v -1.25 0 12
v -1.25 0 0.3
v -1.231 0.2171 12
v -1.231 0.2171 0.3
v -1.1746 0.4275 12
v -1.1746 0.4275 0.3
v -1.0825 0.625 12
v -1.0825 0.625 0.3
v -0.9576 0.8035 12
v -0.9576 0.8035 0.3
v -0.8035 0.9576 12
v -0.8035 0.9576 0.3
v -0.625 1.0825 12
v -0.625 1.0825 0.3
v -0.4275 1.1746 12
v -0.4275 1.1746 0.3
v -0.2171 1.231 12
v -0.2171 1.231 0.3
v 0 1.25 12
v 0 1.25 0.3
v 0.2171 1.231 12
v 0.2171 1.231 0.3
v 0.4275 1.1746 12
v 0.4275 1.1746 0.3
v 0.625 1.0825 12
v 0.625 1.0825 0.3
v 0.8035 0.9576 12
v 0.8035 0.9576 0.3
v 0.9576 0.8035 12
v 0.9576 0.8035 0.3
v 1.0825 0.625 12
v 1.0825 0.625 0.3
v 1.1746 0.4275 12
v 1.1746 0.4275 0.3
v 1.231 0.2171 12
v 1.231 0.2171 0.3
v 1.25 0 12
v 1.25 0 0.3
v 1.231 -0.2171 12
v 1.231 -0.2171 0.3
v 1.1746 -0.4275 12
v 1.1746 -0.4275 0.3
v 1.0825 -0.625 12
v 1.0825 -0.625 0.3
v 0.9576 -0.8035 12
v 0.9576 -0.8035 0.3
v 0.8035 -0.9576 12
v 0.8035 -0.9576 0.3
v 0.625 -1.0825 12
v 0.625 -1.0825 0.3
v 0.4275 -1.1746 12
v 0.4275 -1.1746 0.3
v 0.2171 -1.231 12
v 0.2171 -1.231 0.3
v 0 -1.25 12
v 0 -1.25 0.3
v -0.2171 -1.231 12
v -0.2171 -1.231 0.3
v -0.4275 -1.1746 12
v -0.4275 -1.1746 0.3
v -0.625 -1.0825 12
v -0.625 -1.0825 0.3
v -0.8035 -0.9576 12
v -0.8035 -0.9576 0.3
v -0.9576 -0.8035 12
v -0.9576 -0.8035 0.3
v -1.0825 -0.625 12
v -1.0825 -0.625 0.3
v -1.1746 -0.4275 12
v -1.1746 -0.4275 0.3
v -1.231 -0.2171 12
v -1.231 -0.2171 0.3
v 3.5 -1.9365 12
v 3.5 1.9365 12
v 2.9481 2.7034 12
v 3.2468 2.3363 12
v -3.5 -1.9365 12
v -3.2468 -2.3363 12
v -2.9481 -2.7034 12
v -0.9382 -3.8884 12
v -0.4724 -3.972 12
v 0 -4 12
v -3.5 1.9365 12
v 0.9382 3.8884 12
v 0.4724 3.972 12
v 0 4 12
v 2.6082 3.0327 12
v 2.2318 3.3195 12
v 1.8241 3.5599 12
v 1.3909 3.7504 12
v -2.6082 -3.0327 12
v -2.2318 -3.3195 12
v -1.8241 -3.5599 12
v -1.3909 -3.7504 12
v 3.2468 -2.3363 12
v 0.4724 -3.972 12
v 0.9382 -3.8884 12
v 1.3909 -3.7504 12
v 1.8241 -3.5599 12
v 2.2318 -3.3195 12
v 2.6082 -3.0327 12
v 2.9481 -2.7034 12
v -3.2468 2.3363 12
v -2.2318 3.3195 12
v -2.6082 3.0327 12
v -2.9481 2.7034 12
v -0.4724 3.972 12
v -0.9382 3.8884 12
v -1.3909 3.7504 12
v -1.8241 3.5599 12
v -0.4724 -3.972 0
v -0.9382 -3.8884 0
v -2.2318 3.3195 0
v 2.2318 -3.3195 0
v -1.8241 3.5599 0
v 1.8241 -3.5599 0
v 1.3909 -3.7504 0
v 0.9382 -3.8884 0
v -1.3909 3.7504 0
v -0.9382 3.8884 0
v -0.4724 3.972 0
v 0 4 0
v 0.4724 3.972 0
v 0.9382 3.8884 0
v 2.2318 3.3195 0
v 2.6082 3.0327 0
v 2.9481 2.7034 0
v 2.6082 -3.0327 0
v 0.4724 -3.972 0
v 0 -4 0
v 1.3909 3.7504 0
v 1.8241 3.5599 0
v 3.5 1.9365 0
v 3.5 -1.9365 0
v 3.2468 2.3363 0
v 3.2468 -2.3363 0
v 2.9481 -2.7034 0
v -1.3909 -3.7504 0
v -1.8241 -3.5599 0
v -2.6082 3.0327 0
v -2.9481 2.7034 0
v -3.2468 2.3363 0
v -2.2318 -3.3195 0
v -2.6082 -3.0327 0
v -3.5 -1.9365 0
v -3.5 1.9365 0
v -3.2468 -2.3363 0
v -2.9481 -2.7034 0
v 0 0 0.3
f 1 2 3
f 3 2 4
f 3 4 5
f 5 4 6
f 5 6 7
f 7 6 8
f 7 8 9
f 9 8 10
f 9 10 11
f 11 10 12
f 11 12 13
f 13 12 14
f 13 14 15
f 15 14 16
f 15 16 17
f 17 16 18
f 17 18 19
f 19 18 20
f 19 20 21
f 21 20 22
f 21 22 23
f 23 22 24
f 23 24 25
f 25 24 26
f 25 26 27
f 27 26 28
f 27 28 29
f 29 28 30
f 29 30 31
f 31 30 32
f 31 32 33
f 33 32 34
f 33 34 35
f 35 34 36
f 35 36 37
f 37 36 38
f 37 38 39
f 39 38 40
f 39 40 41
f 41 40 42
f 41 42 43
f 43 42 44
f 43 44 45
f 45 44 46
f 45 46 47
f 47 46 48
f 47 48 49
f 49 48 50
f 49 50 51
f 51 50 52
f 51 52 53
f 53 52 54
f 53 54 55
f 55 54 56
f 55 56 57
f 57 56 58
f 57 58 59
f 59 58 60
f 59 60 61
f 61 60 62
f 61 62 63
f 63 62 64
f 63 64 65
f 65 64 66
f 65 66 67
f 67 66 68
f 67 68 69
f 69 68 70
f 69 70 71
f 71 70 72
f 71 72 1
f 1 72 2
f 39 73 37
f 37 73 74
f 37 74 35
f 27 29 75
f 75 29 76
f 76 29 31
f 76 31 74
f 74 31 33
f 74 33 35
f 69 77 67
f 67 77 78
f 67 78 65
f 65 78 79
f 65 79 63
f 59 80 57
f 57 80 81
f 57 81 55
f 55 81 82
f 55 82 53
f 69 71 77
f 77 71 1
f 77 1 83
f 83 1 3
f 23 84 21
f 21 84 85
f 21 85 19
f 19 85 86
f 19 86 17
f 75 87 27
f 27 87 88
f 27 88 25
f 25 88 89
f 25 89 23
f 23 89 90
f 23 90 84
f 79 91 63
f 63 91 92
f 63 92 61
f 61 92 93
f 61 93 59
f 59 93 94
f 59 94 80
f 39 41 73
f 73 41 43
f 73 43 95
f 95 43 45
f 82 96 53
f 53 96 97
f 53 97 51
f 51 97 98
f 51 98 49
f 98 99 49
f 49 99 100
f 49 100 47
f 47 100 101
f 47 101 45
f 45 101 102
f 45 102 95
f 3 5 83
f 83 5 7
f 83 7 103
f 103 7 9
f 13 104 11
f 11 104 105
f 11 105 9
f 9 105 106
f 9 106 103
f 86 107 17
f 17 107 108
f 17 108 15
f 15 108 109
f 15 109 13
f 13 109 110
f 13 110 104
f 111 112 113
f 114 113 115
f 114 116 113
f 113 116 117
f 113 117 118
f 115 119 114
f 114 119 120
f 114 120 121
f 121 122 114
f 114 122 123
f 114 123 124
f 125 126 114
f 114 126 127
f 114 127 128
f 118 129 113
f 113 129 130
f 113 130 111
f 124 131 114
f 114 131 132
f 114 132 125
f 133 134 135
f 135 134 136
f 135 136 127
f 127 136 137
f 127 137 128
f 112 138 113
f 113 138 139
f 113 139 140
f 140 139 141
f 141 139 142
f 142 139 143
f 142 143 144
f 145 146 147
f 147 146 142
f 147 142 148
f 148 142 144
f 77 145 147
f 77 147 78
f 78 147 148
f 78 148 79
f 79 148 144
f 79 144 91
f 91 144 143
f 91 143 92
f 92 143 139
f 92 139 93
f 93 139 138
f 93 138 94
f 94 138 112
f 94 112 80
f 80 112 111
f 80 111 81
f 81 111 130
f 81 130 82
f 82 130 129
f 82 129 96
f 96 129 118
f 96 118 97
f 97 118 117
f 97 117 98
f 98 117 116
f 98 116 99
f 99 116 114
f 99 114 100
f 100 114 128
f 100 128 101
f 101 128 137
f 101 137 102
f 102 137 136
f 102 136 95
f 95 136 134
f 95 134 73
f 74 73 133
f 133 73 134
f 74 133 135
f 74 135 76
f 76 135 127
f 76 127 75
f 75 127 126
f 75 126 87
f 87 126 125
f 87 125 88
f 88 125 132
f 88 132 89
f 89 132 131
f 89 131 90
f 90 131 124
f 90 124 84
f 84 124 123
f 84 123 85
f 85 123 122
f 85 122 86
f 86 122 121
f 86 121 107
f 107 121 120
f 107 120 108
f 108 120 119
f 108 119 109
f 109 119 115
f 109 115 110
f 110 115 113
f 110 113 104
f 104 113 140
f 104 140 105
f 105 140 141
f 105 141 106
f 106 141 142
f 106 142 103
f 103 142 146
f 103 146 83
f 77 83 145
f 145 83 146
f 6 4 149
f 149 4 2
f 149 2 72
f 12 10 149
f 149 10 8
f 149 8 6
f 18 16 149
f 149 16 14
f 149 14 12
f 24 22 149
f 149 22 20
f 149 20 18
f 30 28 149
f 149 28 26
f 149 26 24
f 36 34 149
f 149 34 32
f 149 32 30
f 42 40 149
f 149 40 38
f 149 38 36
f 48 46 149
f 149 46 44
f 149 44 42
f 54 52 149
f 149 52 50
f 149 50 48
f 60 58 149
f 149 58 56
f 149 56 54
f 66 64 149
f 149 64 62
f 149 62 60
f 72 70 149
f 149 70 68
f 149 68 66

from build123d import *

# Parameters (mm, degrees)
SKETCH1_R           = 1.25
BOSS_EXTRUDE1_DEPTH = 12
SKETCH3_R           = 1.25
BOSS_EXTRUDE2_DEPTH = 0.3


with BuildPart() as part:
    # Sketch1 → Boss-Extrude1 (new body)
    with BuildSketch(Plane.XY):
        with BuildLine():
            Line((3.5, 1.936491673), (3.5, -1.936491673))
            ThreePointArc((3.5, -1.936491673), (0, -4), (-3.5, -1.936491673))
            Line((-3.5, -1.936491673), (-3.5, 1.936491673))
            ThreePointArc((-3.5, 1.936491673), (0, 4), (3.5, 1.936491673))
        make_face()
        Circle(SKETCH1_R, mode=Mode.SUBTRACT)
    extrude(amount=BOSS_EXTRUDE1_DEPTH)

    # Sketch3 → Boss-Extrude2 (add)
    with BuildSketch(Plane(origin=(0, 0, 0), x_dir=(-1, 0, 0), z_dir=(0, 0, -1))):
        Circle(SKETCH3_R)
    extrude(amount=-BOSS_EXTRUDE2_DEPTH)


solid = part.part
